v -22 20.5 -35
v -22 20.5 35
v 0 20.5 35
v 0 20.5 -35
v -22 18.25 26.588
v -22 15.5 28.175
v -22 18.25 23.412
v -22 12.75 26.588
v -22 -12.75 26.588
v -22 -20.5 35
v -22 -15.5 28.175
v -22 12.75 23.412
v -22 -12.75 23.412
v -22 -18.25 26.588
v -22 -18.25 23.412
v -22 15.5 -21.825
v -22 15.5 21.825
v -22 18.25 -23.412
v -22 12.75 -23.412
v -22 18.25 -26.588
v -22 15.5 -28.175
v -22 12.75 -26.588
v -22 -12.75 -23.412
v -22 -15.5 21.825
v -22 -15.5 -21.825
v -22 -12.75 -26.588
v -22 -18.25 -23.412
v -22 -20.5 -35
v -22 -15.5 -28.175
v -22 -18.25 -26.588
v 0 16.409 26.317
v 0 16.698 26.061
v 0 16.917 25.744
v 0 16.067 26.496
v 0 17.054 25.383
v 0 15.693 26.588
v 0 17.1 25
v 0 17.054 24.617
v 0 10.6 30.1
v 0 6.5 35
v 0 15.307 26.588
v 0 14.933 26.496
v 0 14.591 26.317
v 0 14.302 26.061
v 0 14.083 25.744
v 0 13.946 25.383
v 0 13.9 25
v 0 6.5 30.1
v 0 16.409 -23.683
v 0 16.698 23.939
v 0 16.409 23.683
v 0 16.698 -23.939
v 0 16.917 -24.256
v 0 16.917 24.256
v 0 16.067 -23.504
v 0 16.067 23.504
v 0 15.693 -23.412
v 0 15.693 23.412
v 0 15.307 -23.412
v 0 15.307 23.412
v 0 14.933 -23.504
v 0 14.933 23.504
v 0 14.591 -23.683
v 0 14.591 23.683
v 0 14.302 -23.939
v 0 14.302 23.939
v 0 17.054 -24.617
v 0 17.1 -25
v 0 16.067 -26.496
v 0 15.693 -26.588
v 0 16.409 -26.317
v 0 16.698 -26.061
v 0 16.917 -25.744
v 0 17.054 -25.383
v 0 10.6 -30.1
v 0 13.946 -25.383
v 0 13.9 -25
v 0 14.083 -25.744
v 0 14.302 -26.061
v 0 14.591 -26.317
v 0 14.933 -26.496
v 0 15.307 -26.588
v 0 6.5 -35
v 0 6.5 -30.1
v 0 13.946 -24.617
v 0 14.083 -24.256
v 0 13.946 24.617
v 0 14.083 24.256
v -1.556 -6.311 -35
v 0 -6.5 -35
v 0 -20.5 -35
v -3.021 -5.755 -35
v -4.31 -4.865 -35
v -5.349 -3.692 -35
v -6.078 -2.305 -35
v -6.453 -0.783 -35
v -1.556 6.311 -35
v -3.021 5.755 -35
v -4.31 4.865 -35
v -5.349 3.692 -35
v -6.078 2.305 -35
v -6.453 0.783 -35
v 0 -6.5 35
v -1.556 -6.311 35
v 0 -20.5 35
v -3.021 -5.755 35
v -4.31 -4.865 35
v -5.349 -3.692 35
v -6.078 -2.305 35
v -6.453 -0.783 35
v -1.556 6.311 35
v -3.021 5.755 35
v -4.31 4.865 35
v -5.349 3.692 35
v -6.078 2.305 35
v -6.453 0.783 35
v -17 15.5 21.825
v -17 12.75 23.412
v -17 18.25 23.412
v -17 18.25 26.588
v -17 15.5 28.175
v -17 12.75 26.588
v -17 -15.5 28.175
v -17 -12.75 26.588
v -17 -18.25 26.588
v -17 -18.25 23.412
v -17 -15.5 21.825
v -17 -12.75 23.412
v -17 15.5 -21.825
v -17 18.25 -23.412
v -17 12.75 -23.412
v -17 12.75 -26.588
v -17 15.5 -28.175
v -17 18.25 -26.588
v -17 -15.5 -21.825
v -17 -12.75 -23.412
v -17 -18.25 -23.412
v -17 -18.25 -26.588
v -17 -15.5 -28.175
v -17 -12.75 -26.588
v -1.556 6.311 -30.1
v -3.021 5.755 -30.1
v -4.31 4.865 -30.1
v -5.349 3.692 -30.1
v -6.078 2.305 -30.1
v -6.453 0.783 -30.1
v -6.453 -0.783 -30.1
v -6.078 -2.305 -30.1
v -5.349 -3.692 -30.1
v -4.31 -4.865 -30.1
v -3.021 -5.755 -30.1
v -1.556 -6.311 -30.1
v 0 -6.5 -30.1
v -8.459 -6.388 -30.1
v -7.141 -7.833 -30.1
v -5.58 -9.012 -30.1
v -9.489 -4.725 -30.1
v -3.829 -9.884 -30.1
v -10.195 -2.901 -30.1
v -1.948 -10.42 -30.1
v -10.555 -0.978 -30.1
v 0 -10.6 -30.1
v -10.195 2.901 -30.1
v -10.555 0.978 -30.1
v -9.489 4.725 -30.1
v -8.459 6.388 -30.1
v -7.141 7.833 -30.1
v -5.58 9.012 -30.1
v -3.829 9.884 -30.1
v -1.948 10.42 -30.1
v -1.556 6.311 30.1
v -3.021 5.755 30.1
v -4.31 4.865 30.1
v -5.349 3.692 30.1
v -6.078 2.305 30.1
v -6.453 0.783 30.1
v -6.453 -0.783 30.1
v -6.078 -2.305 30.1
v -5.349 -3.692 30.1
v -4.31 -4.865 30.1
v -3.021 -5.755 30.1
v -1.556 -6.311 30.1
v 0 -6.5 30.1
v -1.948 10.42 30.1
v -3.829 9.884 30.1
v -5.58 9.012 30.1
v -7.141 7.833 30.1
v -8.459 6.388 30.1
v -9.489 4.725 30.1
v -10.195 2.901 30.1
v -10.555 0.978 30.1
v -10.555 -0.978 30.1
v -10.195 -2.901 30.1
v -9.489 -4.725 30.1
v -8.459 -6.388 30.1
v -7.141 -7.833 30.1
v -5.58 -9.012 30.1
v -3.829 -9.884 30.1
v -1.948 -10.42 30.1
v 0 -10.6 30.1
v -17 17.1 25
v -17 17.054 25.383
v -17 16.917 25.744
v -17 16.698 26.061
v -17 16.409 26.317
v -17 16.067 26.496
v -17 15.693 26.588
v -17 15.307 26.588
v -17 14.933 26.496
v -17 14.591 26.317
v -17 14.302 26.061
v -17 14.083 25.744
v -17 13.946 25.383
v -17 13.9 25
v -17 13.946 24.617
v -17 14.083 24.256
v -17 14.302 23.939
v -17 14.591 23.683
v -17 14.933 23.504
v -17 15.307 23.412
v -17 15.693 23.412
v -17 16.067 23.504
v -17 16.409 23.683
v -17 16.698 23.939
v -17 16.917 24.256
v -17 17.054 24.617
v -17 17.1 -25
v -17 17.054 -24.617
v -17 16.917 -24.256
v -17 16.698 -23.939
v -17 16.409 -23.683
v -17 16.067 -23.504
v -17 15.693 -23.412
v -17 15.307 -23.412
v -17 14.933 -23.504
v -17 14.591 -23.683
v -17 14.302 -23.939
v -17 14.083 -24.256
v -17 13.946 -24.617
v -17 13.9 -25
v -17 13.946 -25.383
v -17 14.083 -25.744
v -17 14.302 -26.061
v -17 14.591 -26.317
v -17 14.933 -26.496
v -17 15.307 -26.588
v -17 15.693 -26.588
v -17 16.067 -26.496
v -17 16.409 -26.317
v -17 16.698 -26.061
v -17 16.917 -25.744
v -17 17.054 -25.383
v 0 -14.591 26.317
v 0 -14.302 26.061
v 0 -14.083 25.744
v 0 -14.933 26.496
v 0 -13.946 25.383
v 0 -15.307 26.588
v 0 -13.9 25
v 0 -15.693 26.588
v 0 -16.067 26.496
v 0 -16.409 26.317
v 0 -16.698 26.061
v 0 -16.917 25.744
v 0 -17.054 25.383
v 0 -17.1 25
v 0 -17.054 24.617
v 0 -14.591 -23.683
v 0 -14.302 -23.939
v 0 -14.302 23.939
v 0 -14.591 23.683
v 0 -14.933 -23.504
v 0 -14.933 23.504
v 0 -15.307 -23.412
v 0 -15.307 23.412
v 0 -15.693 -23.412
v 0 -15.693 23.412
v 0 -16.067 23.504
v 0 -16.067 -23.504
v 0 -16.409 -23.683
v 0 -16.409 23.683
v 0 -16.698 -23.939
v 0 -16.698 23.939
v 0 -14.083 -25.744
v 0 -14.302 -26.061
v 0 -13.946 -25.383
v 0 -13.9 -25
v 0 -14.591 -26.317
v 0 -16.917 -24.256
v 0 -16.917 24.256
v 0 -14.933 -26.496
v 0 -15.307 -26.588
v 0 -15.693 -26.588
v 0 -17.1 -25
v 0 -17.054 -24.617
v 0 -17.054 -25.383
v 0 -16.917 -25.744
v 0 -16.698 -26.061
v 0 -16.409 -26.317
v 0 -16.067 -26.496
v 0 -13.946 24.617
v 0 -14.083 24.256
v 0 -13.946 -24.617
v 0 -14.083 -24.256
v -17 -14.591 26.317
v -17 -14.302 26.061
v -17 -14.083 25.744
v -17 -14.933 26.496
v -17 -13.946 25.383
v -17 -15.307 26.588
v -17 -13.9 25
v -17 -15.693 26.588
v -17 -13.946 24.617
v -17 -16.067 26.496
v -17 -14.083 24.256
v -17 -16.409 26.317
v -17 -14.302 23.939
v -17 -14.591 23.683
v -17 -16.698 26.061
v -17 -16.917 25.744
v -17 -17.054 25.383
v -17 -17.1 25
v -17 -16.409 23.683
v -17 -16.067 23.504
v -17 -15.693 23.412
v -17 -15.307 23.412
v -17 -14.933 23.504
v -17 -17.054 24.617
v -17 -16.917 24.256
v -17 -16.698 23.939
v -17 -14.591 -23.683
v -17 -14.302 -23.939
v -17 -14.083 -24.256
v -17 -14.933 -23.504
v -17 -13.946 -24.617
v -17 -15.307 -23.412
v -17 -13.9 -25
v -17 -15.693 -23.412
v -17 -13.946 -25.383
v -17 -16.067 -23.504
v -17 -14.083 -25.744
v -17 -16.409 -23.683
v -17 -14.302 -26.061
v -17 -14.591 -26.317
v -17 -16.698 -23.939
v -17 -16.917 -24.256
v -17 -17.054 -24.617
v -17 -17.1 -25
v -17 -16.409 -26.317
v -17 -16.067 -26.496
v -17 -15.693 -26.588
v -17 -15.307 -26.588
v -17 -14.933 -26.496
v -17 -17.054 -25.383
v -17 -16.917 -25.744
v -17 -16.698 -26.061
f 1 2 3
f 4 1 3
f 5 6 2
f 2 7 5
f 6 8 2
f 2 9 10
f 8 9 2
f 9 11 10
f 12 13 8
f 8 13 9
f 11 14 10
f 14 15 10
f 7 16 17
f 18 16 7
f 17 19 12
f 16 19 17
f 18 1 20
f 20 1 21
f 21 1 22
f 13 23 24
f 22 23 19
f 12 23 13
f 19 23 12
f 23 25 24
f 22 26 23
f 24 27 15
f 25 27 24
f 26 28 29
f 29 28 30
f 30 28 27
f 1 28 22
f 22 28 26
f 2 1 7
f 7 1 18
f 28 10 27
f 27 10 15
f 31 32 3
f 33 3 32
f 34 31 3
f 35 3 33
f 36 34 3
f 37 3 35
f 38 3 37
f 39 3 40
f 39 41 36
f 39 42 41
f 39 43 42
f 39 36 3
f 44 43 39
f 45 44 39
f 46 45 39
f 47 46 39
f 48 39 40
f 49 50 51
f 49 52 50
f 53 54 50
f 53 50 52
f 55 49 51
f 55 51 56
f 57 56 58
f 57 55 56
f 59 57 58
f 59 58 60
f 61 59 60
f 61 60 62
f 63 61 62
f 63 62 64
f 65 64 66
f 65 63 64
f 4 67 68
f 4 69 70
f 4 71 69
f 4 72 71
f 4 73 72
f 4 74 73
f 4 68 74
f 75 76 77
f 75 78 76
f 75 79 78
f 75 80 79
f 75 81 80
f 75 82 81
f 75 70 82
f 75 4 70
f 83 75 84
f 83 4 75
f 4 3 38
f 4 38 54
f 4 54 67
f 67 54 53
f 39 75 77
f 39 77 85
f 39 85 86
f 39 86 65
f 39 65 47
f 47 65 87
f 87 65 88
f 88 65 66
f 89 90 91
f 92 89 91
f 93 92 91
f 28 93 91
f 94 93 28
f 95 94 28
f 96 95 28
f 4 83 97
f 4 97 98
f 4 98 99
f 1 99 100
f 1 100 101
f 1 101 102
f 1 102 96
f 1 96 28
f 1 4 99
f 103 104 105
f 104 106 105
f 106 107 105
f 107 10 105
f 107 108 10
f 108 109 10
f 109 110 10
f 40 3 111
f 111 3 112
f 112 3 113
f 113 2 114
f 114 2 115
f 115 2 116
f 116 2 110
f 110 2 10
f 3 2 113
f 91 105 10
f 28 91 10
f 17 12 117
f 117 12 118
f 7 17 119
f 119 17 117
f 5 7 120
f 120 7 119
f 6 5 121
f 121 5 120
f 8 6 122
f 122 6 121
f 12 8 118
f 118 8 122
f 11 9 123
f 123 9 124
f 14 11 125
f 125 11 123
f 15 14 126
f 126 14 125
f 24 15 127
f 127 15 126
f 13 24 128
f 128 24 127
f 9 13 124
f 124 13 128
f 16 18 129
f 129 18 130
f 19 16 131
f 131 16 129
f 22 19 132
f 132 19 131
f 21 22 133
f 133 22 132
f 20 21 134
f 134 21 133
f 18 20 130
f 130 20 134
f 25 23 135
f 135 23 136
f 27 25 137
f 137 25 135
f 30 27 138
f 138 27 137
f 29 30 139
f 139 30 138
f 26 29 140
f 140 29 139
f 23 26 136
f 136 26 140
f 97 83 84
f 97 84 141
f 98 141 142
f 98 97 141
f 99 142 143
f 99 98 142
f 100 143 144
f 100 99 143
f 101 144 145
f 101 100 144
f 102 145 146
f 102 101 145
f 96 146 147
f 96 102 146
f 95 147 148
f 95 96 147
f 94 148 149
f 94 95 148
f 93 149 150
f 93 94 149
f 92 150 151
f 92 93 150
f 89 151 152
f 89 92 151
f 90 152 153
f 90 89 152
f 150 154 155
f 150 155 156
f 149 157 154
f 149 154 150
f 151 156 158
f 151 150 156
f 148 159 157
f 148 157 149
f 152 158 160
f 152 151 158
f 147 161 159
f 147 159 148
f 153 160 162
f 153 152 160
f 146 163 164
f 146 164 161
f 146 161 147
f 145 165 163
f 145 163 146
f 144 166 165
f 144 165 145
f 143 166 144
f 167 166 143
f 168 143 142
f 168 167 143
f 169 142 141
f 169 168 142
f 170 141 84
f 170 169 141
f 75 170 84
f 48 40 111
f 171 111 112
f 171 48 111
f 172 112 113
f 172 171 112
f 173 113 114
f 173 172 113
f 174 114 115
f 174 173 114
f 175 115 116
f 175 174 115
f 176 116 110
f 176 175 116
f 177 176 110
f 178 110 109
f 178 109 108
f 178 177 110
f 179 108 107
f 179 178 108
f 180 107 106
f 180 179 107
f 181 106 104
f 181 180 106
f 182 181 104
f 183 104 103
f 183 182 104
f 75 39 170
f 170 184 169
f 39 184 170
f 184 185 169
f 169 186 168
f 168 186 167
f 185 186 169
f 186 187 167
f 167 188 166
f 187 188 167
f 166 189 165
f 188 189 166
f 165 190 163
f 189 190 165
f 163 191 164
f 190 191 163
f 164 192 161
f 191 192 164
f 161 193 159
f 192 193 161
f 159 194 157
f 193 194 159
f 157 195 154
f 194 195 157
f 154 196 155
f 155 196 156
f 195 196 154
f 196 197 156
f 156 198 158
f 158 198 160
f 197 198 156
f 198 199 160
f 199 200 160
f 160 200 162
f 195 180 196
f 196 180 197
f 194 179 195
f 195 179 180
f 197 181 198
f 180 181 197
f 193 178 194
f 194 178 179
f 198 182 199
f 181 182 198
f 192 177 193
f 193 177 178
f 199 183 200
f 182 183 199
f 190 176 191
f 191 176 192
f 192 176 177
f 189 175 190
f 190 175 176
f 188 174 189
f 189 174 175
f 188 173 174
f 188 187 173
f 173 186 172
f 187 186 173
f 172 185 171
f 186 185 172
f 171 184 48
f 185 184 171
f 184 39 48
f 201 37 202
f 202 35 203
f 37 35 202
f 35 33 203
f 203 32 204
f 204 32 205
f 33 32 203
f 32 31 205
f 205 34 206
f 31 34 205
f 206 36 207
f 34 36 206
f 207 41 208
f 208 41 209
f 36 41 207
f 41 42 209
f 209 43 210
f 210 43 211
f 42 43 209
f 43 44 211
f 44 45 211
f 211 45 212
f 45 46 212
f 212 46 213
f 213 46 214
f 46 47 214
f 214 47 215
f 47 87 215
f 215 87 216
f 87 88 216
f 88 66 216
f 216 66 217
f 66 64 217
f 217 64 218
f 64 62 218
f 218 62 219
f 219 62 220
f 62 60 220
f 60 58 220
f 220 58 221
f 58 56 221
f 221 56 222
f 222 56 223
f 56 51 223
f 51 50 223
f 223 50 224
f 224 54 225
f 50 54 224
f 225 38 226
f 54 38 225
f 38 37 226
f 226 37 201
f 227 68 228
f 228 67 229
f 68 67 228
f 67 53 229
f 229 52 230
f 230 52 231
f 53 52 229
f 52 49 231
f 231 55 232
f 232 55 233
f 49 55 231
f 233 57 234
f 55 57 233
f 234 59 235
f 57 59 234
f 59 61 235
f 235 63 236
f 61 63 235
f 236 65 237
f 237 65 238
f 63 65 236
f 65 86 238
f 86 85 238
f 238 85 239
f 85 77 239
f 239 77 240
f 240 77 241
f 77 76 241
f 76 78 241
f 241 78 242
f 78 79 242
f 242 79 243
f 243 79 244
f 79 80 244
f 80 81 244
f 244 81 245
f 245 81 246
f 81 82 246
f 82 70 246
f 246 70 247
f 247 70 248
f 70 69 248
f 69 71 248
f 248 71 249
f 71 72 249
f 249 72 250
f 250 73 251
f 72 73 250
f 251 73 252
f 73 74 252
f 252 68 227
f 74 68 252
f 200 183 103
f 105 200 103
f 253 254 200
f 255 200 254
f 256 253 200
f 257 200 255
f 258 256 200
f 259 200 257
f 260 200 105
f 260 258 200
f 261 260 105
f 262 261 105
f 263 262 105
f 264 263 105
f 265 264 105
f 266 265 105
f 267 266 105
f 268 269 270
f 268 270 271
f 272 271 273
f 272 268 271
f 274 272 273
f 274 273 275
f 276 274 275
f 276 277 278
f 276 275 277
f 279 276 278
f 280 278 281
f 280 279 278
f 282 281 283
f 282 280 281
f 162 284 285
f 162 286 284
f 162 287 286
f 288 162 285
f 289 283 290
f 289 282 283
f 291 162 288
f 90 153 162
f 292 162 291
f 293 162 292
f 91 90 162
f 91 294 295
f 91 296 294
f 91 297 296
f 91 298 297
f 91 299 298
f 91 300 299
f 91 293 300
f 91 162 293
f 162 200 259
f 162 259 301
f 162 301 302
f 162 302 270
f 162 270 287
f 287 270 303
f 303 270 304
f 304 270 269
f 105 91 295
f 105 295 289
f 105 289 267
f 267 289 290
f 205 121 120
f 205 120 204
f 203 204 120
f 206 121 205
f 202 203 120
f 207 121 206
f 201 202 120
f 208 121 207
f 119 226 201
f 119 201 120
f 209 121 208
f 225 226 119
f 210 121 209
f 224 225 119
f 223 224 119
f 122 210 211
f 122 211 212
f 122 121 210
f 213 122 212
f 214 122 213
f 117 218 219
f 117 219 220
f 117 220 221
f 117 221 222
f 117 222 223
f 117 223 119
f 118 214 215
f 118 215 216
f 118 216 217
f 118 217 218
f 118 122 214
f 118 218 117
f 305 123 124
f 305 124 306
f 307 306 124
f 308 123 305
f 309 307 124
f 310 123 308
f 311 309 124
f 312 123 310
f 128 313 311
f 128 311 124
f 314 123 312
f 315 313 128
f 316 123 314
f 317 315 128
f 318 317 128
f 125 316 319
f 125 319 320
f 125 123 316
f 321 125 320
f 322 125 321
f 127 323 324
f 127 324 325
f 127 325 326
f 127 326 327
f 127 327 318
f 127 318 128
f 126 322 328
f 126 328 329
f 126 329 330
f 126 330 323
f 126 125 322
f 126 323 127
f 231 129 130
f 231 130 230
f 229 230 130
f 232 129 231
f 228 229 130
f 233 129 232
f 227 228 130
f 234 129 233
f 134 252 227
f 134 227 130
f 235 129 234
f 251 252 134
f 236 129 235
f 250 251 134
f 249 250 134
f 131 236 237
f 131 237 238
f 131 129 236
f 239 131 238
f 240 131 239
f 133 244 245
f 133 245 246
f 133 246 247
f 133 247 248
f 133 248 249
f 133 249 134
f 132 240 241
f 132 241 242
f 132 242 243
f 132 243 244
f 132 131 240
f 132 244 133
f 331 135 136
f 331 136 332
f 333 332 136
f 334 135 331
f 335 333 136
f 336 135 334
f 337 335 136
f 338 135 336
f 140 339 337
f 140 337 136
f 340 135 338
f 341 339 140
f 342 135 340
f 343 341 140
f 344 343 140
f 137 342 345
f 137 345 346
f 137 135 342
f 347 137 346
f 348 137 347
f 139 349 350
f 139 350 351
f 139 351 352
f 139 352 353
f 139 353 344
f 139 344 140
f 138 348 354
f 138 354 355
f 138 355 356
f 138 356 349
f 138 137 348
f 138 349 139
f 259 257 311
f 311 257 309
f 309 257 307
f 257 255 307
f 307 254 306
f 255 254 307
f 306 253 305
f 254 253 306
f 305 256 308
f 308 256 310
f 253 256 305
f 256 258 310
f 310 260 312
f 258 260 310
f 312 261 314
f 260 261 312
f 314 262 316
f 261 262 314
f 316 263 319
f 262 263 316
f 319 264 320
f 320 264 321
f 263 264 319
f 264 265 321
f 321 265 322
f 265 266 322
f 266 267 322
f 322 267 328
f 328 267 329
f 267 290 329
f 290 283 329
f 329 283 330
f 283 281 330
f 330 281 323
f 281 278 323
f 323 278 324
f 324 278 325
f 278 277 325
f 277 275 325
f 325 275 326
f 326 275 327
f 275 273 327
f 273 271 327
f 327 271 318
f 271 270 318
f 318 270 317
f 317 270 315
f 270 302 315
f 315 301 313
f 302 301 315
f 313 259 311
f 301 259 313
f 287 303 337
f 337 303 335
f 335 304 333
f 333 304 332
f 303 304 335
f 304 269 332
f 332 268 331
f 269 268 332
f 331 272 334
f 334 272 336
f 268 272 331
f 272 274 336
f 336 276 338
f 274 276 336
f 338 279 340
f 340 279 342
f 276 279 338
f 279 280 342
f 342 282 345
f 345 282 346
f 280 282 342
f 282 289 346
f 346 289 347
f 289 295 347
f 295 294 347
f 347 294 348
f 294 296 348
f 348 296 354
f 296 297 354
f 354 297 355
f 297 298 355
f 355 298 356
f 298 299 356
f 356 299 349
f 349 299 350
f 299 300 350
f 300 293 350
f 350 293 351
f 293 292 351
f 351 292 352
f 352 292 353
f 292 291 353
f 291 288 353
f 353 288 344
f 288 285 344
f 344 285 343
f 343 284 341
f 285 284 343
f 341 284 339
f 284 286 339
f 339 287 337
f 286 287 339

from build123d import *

# Parameters (mm, degrees)
PAD_DEPTH       = 35
SKETCH001_R     = 10.6
POCKET_DEPTH    = 30.1
SKETCH002_R     = 1.6
POCKET001_DEPTH = 22.001
POCKET002_DEPTH = 5


with BuildPart() as part:
    # Sketch → Pad (new body, symmetric)
    with BuildSketch(Plane.XY):
        with BuildLine():
            ThreePointArc((0, 6.5), (-6.5, 0), (0, -6.5))
            Line((0, -6.5), (0, -20.5))
            Line((0, -20.5), (-22, -20.5))
            Line((-22, 20.5), (-22, -20.5))
            Line((-22, 20.5), (0, 20.5))
            Line((0, 20.5), (0, 6.5))
        make_face()
    extrude(amount=PAD_DEPTH, both=True)

    # Sketch001 → Pocket (cut, symmetric)
    with BuildSketch(Plane.XY):
        Circle(SKETCH001_R)
    extrude(amount=POCKET_DEPTH, both=True, mode=Mode.SUBTRACT)

    # Sketch002 → Pocket001 (cut, through all)
    with BuildSketch(Plane.YZ):
        with Locations((-15.5, 25)):
            Circle(SKETCH002_R)
        with Locations((-15.5, -25)):
            Circle(SKETCH002_R)
        with Locations((15.5, 25)):
            Circle(SKETCH002_R)
        with Locations((15.5, -25)):
            Circle(SKETCH002_R)
    extrude(amount=-POCKET001_DEPTH, mode=Mode.SUBTRACT)

    # Sketch003 (on Face2 of Pocket001) → Pocket002 (cut)
    with BuildSketch(Plane(origin=(-22, 0, 0), x_dir=(0, -1, 0), z_dir=(-1, 0, 0))):
        Polygon((-12.75, 23.412287), (-12.75, 26.587713), (-15.5, 28.175426), (-18.25, 26.587713), (-18.25, 23.412287), (-15.5, 21.824574), align=None)
        Polygon((12.75, 26.587713), (12.75, 23.412287), (15.5, 21.824574), (18.25, 23.412287), (18.25, 26.587713), (15.5, 28.175426), align=None)
        Polygon((-18.25, -23.412287), (-18.25, -26.587713), (-15.5, -28.175426), (-12.75, -26.587713), (-12.75, -23.412287), (-15.5, -21.824574), align=None)
        Polygon((12.75, -23.412287), (12.75, -26.587713), (15.5, -28.175426), (18.25, -26.587713), (18.25, -23.412287), (15.5, -21.824574), align=None)
    extrude(amount=-POCKET002_DEPTH, mode=Mode.SUBTRACT)


solid = part.part
